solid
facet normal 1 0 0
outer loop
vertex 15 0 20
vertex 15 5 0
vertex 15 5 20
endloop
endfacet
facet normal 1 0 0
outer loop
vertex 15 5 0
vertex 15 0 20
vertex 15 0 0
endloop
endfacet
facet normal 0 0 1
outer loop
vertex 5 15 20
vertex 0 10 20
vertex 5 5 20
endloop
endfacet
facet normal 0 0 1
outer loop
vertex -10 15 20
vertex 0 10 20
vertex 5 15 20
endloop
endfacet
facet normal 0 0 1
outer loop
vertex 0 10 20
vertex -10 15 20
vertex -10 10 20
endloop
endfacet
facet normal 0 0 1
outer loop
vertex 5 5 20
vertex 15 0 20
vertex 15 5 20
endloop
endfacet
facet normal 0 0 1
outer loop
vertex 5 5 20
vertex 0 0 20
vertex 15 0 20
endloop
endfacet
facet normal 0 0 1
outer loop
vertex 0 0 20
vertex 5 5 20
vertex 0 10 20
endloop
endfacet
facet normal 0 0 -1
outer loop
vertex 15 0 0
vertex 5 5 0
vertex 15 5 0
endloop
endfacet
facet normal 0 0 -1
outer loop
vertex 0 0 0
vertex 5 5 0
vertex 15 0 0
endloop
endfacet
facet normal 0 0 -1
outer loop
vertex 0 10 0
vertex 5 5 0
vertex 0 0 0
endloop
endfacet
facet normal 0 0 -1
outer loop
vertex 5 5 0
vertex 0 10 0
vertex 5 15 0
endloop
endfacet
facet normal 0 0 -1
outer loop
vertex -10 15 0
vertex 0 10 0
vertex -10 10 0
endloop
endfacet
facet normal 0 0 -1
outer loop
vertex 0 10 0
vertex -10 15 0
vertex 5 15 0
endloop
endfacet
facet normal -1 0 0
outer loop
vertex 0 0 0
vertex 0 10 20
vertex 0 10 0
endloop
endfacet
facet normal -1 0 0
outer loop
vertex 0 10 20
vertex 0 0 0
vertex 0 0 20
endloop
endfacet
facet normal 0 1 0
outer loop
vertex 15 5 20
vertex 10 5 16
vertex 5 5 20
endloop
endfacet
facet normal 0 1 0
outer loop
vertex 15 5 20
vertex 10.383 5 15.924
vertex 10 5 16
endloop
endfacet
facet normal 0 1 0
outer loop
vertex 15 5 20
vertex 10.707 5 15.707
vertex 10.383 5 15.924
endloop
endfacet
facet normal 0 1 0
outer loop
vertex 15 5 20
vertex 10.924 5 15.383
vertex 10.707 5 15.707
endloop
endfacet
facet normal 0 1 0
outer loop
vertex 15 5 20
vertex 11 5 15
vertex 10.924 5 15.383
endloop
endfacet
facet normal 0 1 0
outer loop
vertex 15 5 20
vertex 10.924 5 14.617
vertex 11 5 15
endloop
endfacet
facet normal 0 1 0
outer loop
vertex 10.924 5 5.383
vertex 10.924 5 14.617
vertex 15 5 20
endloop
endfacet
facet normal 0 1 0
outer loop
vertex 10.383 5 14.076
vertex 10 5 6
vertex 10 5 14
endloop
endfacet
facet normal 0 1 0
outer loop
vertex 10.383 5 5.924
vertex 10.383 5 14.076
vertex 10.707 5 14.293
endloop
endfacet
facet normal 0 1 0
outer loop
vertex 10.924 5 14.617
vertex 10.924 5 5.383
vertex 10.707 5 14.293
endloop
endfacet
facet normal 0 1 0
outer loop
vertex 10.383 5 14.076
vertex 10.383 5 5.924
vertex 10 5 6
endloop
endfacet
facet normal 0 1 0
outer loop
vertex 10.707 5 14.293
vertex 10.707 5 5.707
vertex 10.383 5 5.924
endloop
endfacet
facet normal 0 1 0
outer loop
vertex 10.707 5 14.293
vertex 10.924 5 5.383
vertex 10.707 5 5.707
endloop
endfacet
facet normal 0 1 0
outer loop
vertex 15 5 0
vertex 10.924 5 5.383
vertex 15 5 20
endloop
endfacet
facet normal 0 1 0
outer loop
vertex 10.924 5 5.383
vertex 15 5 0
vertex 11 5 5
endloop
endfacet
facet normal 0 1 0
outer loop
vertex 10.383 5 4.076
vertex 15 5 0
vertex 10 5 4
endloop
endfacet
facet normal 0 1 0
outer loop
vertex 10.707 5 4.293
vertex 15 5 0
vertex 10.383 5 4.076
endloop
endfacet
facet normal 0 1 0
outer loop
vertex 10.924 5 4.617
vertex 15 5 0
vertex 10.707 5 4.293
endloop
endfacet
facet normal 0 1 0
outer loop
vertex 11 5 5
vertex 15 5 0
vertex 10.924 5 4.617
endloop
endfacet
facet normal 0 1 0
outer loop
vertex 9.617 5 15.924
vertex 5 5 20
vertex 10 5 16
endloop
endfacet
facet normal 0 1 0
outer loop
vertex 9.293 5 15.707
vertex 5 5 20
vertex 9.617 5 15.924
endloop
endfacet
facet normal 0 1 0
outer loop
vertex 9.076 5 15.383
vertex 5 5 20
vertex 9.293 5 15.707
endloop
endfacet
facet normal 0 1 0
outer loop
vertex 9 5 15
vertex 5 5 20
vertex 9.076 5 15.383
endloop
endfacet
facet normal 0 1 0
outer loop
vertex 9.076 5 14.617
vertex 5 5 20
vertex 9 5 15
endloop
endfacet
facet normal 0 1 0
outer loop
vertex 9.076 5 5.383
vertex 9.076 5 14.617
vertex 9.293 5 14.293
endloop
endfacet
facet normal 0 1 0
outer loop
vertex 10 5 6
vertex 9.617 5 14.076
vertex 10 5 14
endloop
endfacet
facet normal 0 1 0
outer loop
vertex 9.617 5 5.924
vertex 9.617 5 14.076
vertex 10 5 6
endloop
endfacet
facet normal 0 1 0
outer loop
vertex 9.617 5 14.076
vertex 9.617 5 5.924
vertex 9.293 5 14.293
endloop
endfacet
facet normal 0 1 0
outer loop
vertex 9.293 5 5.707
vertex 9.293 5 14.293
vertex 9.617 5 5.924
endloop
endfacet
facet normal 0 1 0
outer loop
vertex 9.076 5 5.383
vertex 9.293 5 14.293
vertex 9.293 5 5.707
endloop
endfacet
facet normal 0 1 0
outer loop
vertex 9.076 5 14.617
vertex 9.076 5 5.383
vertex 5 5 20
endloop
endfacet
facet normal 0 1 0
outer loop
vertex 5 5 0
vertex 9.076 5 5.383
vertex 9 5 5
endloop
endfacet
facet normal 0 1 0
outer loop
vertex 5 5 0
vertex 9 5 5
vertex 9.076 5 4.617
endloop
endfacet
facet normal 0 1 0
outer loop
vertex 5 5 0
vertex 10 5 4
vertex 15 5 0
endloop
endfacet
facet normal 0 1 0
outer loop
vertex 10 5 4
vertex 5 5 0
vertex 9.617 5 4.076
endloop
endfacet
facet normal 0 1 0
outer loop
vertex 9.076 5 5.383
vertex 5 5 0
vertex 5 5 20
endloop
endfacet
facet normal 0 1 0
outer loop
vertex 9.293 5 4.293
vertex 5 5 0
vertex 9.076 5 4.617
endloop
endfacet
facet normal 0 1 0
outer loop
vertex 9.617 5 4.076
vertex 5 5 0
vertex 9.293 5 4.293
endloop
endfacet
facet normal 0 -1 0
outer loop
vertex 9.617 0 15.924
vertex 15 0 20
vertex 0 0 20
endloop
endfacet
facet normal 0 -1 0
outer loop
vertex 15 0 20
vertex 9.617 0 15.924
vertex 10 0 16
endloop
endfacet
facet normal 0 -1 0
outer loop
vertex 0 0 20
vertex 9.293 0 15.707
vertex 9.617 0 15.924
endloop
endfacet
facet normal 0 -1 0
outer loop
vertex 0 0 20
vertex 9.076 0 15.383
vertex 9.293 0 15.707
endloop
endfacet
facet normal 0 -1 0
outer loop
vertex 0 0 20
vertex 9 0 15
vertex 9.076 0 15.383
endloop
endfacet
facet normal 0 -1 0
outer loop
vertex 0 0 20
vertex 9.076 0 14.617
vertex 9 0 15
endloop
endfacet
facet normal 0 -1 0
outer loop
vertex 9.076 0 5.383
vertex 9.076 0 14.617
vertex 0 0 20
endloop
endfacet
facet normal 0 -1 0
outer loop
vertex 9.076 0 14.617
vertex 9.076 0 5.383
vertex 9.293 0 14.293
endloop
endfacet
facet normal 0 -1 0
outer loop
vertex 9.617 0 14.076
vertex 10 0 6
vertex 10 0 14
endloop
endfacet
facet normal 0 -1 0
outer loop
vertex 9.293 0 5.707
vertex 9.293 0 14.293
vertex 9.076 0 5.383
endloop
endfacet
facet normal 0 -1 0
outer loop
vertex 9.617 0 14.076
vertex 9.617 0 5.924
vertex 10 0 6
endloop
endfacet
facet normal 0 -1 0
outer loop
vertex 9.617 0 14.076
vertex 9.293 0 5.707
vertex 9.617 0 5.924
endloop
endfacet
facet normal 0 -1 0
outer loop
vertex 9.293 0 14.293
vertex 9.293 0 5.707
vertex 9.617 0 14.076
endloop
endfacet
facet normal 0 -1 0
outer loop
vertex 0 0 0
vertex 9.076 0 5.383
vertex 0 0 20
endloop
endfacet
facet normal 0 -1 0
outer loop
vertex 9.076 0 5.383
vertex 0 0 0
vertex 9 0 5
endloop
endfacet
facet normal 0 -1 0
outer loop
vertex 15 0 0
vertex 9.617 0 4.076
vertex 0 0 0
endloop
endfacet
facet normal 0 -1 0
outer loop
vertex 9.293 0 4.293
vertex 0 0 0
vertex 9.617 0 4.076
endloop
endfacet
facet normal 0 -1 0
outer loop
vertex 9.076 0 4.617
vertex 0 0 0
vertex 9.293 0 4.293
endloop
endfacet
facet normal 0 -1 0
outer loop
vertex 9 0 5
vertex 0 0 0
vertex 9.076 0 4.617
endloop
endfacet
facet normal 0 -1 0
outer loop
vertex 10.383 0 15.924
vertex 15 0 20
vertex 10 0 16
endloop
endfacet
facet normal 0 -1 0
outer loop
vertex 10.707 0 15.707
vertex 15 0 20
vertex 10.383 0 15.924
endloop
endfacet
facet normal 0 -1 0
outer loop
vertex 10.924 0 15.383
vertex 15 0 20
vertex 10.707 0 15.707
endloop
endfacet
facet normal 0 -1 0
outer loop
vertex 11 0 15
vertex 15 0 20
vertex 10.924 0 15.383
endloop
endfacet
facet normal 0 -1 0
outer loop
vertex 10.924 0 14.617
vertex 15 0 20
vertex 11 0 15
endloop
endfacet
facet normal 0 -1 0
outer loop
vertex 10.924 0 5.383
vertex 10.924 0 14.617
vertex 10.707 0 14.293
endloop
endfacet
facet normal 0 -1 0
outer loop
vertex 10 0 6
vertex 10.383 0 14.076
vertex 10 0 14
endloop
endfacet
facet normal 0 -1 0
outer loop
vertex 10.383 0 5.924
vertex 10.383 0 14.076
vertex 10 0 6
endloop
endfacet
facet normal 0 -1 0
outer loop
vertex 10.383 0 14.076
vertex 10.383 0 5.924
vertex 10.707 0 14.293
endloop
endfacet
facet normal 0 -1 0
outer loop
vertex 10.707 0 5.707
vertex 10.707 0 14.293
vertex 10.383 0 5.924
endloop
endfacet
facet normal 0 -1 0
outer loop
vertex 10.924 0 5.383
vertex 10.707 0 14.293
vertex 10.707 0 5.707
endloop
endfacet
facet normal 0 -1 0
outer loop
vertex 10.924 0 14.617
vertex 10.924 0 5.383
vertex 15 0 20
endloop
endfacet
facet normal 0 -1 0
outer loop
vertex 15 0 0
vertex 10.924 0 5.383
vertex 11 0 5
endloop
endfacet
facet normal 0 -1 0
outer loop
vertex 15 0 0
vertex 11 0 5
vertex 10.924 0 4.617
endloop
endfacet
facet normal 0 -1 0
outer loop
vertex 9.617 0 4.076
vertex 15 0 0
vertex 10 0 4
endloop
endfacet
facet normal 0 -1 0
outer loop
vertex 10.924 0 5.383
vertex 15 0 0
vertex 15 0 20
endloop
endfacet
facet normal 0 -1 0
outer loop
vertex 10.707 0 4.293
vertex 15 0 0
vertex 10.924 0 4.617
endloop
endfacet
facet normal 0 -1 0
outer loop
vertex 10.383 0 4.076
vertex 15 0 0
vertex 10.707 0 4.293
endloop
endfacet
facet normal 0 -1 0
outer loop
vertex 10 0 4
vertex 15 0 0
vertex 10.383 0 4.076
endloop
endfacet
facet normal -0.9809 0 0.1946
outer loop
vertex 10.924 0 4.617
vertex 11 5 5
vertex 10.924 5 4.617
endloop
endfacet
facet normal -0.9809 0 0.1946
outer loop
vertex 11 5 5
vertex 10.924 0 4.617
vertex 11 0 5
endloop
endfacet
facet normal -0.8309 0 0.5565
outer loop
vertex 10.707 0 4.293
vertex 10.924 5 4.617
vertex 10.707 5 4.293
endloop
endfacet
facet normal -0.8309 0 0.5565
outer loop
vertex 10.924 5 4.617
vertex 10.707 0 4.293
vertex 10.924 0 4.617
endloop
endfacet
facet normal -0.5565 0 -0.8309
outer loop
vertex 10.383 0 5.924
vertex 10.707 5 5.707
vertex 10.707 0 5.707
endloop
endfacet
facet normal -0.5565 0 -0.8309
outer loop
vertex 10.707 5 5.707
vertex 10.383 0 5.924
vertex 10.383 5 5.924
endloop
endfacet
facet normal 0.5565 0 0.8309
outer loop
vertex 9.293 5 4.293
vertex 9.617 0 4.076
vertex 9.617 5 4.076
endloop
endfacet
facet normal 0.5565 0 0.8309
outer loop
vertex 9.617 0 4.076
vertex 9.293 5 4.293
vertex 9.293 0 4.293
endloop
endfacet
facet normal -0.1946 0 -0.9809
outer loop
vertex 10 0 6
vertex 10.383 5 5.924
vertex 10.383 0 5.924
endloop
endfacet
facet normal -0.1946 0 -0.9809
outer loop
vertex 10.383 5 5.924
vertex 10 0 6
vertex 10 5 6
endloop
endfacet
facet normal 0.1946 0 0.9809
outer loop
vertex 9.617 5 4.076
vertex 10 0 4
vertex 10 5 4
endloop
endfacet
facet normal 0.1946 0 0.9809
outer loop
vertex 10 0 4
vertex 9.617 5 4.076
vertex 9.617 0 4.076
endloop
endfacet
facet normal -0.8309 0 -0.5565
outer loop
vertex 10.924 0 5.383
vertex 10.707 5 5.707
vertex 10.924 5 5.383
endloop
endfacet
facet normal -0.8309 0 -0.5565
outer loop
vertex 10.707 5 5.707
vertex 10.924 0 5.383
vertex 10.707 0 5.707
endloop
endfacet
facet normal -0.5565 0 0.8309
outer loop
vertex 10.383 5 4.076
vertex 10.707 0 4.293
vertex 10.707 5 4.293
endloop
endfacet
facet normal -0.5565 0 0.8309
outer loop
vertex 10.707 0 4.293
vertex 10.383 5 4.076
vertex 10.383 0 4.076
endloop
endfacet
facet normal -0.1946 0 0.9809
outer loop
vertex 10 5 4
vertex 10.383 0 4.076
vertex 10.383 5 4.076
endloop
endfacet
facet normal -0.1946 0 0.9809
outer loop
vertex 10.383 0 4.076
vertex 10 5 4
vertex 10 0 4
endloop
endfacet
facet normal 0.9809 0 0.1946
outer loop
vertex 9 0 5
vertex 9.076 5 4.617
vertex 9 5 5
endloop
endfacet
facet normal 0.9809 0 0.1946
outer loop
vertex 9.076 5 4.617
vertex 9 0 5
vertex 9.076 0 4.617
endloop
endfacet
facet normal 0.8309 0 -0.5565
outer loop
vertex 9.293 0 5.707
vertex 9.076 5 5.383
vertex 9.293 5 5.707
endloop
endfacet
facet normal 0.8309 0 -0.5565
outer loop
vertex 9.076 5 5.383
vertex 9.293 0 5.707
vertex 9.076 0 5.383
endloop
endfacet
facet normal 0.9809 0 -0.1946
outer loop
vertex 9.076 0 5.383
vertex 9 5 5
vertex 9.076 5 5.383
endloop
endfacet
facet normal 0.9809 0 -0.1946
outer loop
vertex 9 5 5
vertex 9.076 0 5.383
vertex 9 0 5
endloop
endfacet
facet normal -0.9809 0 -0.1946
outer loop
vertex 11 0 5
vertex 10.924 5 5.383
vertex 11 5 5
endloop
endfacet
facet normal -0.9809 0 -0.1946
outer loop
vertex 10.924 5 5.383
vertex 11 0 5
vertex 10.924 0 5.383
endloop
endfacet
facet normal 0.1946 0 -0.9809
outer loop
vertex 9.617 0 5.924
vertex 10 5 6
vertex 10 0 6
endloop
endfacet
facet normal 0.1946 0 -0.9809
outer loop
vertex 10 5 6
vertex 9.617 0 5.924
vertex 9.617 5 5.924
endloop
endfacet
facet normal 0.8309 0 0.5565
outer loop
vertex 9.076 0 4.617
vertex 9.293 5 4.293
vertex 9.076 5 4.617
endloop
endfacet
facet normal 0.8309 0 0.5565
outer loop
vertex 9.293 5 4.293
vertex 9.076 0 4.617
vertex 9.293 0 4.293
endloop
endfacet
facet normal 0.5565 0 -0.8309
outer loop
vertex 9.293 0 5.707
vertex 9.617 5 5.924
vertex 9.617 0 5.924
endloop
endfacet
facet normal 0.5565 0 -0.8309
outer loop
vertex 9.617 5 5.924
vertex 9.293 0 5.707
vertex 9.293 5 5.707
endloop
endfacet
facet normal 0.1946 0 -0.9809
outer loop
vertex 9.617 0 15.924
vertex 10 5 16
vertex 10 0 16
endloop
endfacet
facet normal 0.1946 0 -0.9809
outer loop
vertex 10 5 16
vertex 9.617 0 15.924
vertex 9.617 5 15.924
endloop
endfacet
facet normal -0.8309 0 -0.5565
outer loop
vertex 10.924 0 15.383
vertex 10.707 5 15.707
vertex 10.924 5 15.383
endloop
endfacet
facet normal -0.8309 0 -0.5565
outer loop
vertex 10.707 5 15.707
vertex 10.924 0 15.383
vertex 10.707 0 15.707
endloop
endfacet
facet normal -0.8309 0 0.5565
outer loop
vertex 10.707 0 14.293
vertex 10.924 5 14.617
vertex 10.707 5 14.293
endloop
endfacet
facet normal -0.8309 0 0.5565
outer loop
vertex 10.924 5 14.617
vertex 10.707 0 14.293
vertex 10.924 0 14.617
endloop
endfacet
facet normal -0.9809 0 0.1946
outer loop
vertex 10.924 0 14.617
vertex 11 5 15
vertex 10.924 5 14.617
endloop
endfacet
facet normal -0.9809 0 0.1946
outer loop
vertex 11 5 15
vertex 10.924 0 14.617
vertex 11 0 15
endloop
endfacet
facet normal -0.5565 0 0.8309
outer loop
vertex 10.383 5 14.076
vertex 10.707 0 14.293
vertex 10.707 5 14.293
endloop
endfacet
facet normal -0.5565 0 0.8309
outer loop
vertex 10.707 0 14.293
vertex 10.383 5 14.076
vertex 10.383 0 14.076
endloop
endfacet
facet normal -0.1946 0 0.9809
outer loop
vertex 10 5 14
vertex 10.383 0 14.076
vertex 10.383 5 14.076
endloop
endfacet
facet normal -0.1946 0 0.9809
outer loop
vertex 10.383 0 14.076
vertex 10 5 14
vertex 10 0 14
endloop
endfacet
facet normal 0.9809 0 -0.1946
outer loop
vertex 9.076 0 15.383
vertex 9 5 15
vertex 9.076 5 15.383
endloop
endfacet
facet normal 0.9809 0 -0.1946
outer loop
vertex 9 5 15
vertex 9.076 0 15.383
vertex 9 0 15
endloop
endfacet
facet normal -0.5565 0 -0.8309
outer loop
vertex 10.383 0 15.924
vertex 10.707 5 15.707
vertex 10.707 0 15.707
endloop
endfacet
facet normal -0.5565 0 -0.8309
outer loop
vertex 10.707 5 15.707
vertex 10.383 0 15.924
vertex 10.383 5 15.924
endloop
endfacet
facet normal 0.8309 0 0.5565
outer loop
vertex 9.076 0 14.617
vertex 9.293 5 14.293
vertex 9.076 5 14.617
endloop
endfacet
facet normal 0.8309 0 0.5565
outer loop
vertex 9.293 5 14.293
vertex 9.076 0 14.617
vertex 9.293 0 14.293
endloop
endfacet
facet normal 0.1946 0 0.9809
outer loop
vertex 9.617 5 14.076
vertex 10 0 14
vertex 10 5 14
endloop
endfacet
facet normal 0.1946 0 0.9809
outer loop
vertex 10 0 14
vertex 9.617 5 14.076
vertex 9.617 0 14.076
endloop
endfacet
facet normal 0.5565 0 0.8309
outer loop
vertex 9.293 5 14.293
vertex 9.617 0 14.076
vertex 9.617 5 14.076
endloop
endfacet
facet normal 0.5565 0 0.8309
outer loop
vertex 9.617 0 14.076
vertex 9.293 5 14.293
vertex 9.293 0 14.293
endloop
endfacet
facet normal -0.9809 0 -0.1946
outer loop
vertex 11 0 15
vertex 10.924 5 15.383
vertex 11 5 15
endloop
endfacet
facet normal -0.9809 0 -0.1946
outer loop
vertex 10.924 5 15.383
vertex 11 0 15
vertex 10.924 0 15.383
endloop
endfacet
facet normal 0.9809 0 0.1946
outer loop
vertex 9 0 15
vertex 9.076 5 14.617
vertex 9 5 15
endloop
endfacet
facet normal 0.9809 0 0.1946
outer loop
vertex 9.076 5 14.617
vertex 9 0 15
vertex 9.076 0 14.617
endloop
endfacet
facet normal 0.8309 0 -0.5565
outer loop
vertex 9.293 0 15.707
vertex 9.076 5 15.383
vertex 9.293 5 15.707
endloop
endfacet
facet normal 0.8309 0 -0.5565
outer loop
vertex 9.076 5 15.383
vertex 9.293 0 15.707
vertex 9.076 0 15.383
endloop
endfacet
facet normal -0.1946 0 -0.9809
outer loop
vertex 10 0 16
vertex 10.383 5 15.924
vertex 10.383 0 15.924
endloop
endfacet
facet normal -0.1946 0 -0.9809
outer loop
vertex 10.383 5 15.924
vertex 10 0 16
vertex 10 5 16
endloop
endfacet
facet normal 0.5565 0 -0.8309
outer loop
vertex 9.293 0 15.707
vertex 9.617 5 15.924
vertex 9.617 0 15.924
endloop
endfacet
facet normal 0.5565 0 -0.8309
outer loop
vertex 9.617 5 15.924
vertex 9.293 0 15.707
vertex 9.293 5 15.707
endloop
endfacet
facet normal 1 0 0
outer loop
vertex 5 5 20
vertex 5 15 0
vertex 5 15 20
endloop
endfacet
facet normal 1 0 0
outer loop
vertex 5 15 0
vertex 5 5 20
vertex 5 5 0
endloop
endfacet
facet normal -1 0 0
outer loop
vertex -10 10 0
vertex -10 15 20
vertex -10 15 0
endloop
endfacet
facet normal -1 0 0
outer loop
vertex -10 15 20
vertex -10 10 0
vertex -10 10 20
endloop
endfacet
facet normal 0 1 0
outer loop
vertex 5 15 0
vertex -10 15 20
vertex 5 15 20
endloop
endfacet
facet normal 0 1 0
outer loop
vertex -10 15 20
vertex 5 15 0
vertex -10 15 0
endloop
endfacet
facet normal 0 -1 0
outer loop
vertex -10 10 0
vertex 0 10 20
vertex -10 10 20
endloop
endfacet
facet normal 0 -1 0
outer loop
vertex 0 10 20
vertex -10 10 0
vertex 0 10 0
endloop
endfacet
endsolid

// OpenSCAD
$fa = 1;
$fs = 0.4;
//$fn = 0;

d = 10;
h = 5;
w = 20;
r_hole = 1;
hole_offset = 3;

module mycube(){
    cube([d + h, h, w]);
}

difference() {
    mycube();
    translate([h+d/2,-2,w/4]) rotate([-90,0,0]) cylinder(r=r_hole,h=30);
    translate([h+d/2,-2,3*w/4]) rotate([-90,0,0]) cylinder(r=r_hole,h=30);
}

translate([-d,d,0]) mycube();

translate([h,0,0]) rotate([0,0,90]) mycube();
